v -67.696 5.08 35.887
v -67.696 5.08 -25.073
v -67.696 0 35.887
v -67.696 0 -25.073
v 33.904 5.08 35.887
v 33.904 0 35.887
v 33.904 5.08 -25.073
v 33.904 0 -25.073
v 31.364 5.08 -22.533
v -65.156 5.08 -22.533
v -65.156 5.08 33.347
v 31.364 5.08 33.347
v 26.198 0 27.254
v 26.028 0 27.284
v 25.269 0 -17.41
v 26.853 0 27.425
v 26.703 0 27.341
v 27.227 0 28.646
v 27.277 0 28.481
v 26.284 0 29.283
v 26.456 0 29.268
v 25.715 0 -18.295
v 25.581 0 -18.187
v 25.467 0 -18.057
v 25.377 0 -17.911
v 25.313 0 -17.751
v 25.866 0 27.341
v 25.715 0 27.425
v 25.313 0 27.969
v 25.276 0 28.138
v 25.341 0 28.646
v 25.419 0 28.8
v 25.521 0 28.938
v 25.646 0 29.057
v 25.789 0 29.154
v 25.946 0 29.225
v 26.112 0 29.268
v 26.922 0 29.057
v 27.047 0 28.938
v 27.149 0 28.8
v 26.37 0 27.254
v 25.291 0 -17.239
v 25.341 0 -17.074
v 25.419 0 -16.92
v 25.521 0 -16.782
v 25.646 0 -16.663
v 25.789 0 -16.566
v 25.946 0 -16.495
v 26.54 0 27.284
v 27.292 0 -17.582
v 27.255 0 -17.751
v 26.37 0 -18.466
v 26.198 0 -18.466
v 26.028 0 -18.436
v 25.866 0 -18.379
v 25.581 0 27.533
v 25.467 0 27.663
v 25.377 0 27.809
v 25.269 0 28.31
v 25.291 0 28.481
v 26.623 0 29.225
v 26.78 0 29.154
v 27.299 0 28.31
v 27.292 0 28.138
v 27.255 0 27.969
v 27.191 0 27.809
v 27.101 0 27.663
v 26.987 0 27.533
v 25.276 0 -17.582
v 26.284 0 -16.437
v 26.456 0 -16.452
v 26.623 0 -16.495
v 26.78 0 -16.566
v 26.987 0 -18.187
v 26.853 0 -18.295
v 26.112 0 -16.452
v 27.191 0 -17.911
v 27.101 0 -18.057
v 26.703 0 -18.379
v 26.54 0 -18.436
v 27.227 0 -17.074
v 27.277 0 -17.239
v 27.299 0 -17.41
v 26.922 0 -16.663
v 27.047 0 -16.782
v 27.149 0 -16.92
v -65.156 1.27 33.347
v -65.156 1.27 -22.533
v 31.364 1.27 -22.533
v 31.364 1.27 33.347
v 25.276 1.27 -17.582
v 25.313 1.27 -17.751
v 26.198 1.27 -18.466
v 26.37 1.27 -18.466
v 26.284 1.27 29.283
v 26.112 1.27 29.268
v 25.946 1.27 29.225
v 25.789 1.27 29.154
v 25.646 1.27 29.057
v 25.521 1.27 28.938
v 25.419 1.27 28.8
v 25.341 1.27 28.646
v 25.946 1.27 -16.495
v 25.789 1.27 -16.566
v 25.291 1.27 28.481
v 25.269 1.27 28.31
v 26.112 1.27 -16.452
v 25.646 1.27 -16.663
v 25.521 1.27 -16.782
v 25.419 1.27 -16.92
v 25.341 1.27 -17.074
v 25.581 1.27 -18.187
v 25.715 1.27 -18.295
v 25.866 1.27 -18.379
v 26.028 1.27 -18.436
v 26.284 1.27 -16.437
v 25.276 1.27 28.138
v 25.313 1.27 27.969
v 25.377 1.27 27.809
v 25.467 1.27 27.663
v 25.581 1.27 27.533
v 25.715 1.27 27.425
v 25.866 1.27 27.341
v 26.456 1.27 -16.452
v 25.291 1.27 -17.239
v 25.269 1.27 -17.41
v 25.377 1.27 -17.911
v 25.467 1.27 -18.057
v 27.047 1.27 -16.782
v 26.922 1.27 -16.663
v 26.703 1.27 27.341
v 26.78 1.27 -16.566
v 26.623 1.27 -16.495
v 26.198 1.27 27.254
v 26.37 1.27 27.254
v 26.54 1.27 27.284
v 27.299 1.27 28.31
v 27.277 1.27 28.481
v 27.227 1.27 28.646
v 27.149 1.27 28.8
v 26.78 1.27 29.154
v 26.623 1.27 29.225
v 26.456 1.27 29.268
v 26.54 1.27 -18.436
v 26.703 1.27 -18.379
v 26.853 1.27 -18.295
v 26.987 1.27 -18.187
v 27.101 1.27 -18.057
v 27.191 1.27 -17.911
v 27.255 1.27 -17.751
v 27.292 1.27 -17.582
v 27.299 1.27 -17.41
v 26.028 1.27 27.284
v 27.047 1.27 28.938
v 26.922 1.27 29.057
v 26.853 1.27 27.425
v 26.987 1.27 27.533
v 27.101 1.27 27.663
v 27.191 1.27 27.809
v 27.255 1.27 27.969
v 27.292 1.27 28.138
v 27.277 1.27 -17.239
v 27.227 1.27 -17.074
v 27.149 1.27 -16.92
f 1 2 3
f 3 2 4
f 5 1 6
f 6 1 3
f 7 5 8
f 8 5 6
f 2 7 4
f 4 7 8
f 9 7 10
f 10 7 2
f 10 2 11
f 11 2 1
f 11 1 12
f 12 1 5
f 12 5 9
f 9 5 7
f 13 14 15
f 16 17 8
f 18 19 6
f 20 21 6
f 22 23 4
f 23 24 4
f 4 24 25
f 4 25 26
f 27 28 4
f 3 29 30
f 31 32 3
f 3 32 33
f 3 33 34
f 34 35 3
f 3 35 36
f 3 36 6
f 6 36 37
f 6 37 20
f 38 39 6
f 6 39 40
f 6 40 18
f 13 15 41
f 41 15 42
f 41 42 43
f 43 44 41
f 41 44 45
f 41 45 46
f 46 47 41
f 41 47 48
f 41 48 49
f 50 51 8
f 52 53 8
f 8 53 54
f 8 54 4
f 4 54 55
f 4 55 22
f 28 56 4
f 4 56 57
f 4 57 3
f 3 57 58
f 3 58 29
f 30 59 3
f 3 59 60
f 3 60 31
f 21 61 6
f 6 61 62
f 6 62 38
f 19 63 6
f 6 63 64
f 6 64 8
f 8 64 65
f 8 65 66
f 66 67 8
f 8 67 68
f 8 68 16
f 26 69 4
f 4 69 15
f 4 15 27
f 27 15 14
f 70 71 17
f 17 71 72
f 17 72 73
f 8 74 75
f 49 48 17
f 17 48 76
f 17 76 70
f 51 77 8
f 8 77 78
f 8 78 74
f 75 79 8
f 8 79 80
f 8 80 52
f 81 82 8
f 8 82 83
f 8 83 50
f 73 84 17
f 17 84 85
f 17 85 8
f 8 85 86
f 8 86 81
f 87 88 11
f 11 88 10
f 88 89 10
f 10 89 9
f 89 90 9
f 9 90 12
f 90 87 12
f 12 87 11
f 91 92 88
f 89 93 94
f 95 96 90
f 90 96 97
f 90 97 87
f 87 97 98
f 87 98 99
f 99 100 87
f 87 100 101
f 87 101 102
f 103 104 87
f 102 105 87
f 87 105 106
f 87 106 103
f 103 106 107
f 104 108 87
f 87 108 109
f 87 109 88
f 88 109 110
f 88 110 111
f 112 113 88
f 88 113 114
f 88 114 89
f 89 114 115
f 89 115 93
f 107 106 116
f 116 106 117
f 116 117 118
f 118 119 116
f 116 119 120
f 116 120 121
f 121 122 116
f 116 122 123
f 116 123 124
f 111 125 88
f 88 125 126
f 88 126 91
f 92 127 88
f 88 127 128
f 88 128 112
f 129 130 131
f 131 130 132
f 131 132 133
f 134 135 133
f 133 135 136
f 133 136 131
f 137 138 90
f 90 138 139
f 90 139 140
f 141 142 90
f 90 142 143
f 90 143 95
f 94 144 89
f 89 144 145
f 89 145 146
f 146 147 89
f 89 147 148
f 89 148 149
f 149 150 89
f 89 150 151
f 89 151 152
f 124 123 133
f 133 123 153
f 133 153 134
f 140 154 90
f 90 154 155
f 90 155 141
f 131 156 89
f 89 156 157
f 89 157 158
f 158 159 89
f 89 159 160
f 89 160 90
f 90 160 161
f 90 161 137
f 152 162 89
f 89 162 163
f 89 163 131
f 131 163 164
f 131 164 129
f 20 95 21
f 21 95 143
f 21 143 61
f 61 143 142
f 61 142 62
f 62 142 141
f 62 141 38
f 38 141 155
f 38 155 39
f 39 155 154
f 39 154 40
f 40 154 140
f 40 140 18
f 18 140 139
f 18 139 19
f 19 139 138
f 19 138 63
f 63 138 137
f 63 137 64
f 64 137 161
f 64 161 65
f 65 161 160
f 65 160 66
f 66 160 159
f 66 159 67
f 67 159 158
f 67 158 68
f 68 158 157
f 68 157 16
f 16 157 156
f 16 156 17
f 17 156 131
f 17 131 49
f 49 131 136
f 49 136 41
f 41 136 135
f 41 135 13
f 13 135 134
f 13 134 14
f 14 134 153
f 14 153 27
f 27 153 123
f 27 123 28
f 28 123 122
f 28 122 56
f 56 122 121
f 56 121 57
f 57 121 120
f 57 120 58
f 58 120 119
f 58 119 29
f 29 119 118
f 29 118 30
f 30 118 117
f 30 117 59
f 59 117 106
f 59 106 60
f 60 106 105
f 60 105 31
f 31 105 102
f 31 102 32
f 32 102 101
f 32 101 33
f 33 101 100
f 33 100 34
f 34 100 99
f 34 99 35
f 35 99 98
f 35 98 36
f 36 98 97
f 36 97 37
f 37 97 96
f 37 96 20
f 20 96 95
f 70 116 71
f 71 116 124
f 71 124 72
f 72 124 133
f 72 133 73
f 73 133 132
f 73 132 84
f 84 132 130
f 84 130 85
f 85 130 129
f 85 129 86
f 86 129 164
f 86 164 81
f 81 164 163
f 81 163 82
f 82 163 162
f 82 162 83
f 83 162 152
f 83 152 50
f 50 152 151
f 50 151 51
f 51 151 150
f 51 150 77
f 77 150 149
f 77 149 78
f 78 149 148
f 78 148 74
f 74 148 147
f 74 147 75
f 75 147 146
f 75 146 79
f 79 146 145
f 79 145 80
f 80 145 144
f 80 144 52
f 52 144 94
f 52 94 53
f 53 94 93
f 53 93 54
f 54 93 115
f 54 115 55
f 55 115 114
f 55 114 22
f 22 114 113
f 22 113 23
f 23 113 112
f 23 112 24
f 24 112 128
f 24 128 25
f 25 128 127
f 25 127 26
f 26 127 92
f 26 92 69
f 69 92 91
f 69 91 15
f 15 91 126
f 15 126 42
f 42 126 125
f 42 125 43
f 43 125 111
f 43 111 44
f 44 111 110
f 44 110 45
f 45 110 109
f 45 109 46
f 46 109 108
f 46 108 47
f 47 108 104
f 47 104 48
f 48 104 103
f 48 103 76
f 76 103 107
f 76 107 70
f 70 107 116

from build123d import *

# Parameters (mm, degrees)
SKETCH1_W           = 101.6
SKETCH1_H           = 60.96
BOSS_EXTRUDE1_DEPTH = 5.08
SKETCH2_W           = 96.52
SKETCH2_H           = 55.88
CUT_EXTRUDE1_DEPTH  = 3.81
SKETCH3_R           = 1.016
CUT_EXTRUDE3_DEPTH  = 11.43


with BuildPart() as part:
    # Sketch1 → Boss-Extrude1 (new body)
    with BuildSketch(Plane(origin=(-10.826110924, 0, 0), x_dir=(1, 0, 0), z_dir=(0, 1, 0))):
        with Locations((-6.069852941, -5.406838235)):
            Rectangle(SKETCH1_W, SKETCH1_H)
    extrude(amount=BOSS_EXTRUDE1_DEPTH)

    # Sketch2 → Cut-Extrude1 (cut)
    with BuildSketch(Plane(origin=(-10.826110924, 5.08, -21.022149646), x_dir=(1, 0, 0), z_dir=(0, 1, 0))):
        with Locations((-6.069852941, -26.428987881)):
            Rectangle(SKETCH2_W, SKETCH2_H)
    extrude(amount=-CUT_EXTRUDE1_DEPTH, mode=Mode.SUBTRACT)

    # Sketch3 → Cut-Extrude3 (cut)
    with BuildSketch(Plane(origin=(0, 1.27, -21.022149646), x_dir=(1, 0, 0), z_dir=(0, 1, 0))):
        with Locations((26.284036135, -3.568987881)):
            Circle(SKETCH3_R)
        with Locations((26.284036135, -49.288987881)):
            Circle(SKETCH3_R)
    extrude(amount=-CUT_EXTRUDE3_DEPTH, mode=Mode.SUBTRACT)


solid = part.part
